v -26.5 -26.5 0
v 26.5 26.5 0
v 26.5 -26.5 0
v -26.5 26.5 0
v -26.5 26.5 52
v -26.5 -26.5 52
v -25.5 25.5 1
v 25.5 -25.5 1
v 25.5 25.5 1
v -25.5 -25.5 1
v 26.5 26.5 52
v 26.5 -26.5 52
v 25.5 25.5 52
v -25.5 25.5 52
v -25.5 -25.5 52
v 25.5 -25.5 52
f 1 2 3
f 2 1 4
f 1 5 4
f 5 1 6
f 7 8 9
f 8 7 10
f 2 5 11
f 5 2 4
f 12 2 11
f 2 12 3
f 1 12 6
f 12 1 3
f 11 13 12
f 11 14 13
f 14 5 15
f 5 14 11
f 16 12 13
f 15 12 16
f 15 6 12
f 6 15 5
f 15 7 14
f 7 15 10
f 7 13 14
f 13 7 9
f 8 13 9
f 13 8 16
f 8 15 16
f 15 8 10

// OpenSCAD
// file puzzleBox.scad
// Creates a "vase box"with 
// internal dimensions that fits
// a tetrahedron with the same
// value of the "size" variable
// (c) Rich Cameron 2020, 
// License CC-BY

size = 50;
clearance = 1;
wall = 1;

linear_extrude(wall) square(size + clearance + wall * 2, center = true);

linear_extrude(size + clearance + wall) difference() {
	square(size + clearance + wall * 2, center = true);
	square(size + clearance, center = true);
}
